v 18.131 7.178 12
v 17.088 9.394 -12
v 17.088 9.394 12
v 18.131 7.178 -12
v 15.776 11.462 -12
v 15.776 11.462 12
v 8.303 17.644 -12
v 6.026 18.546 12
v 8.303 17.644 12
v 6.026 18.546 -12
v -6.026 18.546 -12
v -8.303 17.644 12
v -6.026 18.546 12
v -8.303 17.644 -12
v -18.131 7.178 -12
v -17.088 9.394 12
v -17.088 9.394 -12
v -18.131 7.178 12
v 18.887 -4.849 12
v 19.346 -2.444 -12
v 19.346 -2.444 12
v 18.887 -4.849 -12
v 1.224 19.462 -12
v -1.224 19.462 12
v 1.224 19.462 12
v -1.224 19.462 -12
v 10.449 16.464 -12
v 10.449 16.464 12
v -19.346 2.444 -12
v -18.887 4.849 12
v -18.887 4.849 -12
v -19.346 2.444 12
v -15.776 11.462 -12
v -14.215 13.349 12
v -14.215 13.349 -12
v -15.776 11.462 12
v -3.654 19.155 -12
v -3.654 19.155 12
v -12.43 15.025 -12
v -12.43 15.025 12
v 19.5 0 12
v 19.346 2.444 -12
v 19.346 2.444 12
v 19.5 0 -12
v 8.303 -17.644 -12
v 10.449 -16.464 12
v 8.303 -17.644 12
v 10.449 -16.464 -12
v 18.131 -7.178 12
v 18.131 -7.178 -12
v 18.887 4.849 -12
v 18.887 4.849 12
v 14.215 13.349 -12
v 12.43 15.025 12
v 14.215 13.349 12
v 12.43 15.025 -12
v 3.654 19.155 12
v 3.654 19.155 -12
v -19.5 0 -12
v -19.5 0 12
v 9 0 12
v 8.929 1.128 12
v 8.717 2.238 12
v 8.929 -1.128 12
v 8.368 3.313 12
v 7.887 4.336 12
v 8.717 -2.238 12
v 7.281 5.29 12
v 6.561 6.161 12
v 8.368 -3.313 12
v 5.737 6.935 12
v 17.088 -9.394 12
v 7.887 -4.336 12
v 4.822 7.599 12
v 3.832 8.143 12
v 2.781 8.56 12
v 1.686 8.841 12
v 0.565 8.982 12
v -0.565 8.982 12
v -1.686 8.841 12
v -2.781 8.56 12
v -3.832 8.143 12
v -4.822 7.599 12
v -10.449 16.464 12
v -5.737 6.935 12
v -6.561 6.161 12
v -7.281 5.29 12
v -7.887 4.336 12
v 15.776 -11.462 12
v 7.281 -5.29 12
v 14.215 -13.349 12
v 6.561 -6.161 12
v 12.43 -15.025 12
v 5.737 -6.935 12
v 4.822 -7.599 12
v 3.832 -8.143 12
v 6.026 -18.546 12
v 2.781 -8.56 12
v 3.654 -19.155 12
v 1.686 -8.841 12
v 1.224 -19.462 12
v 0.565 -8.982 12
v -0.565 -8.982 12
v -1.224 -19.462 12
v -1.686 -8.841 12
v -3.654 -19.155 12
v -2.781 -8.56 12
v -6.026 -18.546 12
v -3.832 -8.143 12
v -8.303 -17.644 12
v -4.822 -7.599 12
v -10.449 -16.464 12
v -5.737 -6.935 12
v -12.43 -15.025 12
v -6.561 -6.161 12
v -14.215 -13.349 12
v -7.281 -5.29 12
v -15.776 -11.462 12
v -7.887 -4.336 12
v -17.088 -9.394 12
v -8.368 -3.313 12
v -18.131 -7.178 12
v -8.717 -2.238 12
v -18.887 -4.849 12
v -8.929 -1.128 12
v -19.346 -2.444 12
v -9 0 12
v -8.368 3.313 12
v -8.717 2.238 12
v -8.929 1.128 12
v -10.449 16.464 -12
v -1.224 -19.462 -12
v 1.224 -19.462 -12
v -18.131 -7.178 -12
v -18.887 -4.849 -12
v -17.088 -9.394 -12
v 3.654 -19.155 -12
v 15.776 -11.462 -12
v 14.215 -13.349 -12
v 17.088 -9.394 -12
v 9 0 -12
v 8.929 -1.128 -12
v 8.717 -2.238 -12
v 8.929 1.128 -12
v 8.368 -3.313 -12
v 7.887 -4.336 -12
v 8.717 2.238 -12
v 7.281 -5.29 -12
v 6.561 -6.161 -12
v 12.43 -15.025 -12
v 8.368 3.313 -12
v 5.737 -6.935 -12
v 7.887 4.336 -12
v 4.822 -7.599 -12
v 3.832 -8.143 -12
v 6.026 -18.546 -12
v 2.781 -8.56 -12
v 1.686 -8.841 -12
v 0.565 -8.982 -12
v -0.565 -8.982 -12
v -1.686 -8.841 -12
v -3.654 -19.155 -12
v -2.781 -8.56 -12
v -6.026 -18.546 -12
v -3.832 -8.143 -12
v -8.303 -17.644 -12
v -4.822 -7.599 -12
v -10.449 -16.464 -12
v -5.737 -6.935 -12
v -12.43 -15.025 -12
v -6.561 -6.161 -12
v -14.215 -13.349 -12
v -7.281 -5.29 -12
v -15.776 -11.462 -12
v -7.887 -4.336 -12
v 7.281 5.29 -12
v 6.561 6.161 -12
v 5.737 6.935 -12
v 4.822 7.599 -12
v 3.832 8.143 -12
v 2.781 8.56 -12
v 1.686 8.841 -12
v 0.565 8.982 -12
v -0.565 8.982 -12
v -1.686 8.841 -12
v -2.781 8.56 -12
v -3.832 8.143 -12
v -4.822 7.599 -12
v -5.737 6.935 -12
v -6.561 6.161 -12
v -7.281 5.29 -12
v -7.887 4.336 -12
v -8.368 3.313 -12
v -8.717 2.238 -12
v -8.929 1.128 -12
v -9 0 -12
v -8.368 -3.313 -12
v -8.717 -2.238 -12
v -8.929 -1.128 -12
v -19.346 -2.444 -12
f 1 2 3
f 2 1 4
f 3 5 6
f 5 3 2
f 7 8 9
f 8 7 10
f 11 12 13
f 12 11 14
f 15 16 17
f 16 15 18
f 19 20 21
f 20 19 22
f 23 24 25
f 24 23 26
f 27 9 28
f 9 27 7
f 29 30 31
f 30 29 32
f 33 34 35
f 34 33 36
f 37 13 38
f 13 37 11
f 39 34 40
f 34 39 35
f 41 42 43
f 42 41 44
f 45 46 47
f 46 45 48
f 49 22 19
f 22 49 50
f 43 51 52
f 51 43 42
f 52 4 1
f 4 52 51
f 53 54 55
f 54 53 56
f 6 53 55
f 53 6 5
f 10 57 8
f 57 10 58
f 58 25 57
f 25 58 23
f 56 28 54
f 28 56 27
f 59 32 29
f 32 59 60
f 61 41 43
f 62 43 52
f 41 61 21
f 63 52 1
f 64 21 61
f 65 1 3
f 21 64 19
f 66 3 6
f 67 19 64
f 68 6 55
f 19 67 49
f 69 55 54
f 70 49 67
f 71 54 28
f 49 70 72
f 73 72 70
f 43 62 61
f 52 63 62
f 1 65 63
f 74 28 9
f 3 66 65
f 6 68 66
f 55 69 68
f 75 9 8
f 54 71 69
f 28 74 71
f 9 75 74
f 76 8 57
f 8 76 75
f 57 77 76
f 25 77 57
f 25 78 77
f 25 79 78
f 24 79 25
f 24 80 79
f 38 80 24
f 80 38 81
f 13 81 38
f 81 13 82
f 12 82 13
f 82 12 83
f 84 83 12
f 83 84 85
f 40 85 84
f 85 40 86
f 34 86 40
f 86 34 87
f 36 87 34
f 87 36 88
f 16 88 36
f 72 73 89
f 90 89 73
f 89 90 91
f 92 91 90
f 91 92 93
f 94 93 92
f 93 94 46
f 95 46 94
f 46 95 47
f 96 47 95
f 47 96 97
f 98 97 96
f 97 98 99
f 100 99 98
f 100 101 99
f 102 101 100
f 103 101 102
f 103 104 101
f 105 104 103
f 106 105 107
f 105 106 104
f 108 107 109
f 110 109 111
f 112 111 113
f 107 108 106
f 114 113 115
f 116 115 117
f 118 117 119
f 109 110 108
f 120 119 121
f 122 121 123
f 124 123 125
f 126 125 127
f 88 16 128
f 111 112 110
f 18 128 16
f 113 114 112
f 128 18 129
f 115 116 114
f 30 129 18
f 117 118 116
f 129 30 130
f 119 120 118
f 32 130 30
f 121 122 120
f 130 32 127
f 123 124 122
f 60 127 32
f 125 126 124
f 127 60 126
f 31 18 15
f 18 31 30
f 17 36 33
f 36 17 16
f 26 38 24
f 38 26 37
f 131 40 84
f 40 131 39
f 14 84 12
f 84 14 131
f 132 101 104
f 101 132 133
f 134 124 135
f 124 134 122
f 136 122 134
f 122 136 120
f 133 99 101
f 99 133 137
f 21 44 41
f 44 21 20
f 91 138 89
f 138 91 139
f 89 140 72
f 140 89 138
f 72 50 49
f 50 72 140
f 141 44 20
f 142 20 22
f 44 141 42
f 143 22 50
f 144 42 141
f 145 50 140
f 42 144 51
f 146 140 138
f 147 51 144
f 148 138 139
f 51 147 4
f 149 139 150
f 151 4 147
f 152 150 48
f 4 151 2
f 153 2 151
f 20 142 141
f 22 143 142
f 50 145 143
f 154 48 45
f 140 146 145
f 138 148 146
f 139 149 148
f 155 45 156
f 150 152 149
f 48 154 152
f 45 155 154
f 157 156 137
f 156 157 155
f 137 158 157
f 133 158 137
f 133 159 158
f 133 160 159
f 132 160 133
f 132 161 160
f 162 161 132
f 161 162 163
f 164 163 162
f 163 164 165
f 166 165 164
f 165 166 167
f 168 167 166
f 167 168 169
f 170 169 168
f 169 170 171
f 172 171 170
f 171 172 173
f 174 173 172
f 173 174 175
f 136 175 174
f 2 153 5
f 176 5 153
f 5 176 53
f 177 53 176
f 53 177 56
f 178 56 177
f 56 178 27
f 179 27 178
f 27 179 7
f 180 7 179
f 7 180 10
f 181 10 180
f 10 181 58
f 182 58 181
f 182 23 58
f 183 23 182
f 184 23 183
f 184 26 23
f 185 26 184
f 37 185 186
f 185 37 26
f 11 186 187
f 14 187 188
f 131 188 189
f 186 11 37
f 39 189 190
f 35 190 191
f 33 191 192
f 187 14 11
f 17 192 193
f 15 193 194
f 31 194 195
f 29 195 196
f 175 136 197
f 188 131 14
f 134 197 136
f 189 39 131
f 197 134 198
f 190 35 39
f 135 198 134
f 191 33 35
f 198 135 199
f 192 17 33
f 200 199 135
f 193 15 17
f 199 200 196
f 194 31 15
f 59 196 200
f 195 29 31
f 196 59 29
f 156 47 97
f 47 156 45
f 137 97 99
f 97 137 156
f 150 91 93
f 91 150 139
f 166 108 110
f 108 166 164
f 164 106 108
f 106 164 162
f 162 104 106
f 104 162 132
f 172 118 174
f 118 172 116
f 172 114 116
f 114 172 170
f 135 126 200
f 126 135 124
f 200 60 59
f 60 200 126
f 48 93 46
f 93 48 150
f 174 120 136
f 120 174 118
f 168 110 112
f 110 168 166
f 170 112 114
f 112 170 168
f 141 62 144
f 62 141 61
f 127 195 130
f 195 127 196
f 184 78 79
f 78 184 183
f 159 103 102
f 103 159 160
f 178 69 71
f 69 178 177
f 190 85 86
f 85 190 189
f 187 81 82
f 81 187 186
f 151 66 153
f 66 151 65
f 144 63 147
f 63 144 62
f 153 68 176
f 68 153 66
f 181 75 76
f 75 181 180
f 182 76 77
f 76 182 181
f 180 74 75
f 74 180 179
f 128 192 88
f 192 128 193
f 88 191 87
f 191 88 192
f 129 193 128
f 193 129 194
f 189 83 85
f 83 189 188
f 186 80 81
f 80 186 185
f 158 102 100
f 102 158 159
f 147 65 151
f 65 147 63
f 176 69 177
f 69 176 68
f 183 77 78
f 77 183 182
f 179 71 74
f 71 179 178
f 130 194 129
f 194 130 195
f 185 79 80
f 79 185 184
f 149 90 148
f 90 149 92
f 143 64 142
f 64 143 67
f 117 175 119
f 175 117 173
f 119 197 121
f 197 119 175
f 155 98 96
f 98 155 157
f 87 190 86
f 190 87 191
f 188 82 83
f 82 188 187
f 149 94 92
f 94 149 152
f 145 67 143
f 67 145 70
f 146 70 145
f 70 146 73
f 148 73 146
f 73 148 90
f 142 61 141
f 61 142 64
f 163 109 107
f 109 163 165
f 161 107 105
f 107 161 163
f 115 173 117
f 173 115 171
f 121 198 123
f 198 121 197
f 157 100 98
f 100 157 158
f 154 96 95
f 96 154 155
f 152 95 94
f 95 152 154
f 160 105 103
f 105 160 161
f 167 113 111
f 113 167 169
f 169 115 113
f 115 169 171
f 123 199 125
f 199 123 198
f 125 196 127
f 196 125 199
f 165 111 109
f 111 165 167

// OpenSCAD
$fn = 50;


difference() {
	union() {
		translate(v = [0, 0, -12.0000000000]) {
			cylinder(h = 24, r = 19.5000000000);
		}
	}
	union() {
		translate(v = [0, 0, -100.0000000000]) {
			cylinder(h = 200, r = 9);
		}
	}
}
